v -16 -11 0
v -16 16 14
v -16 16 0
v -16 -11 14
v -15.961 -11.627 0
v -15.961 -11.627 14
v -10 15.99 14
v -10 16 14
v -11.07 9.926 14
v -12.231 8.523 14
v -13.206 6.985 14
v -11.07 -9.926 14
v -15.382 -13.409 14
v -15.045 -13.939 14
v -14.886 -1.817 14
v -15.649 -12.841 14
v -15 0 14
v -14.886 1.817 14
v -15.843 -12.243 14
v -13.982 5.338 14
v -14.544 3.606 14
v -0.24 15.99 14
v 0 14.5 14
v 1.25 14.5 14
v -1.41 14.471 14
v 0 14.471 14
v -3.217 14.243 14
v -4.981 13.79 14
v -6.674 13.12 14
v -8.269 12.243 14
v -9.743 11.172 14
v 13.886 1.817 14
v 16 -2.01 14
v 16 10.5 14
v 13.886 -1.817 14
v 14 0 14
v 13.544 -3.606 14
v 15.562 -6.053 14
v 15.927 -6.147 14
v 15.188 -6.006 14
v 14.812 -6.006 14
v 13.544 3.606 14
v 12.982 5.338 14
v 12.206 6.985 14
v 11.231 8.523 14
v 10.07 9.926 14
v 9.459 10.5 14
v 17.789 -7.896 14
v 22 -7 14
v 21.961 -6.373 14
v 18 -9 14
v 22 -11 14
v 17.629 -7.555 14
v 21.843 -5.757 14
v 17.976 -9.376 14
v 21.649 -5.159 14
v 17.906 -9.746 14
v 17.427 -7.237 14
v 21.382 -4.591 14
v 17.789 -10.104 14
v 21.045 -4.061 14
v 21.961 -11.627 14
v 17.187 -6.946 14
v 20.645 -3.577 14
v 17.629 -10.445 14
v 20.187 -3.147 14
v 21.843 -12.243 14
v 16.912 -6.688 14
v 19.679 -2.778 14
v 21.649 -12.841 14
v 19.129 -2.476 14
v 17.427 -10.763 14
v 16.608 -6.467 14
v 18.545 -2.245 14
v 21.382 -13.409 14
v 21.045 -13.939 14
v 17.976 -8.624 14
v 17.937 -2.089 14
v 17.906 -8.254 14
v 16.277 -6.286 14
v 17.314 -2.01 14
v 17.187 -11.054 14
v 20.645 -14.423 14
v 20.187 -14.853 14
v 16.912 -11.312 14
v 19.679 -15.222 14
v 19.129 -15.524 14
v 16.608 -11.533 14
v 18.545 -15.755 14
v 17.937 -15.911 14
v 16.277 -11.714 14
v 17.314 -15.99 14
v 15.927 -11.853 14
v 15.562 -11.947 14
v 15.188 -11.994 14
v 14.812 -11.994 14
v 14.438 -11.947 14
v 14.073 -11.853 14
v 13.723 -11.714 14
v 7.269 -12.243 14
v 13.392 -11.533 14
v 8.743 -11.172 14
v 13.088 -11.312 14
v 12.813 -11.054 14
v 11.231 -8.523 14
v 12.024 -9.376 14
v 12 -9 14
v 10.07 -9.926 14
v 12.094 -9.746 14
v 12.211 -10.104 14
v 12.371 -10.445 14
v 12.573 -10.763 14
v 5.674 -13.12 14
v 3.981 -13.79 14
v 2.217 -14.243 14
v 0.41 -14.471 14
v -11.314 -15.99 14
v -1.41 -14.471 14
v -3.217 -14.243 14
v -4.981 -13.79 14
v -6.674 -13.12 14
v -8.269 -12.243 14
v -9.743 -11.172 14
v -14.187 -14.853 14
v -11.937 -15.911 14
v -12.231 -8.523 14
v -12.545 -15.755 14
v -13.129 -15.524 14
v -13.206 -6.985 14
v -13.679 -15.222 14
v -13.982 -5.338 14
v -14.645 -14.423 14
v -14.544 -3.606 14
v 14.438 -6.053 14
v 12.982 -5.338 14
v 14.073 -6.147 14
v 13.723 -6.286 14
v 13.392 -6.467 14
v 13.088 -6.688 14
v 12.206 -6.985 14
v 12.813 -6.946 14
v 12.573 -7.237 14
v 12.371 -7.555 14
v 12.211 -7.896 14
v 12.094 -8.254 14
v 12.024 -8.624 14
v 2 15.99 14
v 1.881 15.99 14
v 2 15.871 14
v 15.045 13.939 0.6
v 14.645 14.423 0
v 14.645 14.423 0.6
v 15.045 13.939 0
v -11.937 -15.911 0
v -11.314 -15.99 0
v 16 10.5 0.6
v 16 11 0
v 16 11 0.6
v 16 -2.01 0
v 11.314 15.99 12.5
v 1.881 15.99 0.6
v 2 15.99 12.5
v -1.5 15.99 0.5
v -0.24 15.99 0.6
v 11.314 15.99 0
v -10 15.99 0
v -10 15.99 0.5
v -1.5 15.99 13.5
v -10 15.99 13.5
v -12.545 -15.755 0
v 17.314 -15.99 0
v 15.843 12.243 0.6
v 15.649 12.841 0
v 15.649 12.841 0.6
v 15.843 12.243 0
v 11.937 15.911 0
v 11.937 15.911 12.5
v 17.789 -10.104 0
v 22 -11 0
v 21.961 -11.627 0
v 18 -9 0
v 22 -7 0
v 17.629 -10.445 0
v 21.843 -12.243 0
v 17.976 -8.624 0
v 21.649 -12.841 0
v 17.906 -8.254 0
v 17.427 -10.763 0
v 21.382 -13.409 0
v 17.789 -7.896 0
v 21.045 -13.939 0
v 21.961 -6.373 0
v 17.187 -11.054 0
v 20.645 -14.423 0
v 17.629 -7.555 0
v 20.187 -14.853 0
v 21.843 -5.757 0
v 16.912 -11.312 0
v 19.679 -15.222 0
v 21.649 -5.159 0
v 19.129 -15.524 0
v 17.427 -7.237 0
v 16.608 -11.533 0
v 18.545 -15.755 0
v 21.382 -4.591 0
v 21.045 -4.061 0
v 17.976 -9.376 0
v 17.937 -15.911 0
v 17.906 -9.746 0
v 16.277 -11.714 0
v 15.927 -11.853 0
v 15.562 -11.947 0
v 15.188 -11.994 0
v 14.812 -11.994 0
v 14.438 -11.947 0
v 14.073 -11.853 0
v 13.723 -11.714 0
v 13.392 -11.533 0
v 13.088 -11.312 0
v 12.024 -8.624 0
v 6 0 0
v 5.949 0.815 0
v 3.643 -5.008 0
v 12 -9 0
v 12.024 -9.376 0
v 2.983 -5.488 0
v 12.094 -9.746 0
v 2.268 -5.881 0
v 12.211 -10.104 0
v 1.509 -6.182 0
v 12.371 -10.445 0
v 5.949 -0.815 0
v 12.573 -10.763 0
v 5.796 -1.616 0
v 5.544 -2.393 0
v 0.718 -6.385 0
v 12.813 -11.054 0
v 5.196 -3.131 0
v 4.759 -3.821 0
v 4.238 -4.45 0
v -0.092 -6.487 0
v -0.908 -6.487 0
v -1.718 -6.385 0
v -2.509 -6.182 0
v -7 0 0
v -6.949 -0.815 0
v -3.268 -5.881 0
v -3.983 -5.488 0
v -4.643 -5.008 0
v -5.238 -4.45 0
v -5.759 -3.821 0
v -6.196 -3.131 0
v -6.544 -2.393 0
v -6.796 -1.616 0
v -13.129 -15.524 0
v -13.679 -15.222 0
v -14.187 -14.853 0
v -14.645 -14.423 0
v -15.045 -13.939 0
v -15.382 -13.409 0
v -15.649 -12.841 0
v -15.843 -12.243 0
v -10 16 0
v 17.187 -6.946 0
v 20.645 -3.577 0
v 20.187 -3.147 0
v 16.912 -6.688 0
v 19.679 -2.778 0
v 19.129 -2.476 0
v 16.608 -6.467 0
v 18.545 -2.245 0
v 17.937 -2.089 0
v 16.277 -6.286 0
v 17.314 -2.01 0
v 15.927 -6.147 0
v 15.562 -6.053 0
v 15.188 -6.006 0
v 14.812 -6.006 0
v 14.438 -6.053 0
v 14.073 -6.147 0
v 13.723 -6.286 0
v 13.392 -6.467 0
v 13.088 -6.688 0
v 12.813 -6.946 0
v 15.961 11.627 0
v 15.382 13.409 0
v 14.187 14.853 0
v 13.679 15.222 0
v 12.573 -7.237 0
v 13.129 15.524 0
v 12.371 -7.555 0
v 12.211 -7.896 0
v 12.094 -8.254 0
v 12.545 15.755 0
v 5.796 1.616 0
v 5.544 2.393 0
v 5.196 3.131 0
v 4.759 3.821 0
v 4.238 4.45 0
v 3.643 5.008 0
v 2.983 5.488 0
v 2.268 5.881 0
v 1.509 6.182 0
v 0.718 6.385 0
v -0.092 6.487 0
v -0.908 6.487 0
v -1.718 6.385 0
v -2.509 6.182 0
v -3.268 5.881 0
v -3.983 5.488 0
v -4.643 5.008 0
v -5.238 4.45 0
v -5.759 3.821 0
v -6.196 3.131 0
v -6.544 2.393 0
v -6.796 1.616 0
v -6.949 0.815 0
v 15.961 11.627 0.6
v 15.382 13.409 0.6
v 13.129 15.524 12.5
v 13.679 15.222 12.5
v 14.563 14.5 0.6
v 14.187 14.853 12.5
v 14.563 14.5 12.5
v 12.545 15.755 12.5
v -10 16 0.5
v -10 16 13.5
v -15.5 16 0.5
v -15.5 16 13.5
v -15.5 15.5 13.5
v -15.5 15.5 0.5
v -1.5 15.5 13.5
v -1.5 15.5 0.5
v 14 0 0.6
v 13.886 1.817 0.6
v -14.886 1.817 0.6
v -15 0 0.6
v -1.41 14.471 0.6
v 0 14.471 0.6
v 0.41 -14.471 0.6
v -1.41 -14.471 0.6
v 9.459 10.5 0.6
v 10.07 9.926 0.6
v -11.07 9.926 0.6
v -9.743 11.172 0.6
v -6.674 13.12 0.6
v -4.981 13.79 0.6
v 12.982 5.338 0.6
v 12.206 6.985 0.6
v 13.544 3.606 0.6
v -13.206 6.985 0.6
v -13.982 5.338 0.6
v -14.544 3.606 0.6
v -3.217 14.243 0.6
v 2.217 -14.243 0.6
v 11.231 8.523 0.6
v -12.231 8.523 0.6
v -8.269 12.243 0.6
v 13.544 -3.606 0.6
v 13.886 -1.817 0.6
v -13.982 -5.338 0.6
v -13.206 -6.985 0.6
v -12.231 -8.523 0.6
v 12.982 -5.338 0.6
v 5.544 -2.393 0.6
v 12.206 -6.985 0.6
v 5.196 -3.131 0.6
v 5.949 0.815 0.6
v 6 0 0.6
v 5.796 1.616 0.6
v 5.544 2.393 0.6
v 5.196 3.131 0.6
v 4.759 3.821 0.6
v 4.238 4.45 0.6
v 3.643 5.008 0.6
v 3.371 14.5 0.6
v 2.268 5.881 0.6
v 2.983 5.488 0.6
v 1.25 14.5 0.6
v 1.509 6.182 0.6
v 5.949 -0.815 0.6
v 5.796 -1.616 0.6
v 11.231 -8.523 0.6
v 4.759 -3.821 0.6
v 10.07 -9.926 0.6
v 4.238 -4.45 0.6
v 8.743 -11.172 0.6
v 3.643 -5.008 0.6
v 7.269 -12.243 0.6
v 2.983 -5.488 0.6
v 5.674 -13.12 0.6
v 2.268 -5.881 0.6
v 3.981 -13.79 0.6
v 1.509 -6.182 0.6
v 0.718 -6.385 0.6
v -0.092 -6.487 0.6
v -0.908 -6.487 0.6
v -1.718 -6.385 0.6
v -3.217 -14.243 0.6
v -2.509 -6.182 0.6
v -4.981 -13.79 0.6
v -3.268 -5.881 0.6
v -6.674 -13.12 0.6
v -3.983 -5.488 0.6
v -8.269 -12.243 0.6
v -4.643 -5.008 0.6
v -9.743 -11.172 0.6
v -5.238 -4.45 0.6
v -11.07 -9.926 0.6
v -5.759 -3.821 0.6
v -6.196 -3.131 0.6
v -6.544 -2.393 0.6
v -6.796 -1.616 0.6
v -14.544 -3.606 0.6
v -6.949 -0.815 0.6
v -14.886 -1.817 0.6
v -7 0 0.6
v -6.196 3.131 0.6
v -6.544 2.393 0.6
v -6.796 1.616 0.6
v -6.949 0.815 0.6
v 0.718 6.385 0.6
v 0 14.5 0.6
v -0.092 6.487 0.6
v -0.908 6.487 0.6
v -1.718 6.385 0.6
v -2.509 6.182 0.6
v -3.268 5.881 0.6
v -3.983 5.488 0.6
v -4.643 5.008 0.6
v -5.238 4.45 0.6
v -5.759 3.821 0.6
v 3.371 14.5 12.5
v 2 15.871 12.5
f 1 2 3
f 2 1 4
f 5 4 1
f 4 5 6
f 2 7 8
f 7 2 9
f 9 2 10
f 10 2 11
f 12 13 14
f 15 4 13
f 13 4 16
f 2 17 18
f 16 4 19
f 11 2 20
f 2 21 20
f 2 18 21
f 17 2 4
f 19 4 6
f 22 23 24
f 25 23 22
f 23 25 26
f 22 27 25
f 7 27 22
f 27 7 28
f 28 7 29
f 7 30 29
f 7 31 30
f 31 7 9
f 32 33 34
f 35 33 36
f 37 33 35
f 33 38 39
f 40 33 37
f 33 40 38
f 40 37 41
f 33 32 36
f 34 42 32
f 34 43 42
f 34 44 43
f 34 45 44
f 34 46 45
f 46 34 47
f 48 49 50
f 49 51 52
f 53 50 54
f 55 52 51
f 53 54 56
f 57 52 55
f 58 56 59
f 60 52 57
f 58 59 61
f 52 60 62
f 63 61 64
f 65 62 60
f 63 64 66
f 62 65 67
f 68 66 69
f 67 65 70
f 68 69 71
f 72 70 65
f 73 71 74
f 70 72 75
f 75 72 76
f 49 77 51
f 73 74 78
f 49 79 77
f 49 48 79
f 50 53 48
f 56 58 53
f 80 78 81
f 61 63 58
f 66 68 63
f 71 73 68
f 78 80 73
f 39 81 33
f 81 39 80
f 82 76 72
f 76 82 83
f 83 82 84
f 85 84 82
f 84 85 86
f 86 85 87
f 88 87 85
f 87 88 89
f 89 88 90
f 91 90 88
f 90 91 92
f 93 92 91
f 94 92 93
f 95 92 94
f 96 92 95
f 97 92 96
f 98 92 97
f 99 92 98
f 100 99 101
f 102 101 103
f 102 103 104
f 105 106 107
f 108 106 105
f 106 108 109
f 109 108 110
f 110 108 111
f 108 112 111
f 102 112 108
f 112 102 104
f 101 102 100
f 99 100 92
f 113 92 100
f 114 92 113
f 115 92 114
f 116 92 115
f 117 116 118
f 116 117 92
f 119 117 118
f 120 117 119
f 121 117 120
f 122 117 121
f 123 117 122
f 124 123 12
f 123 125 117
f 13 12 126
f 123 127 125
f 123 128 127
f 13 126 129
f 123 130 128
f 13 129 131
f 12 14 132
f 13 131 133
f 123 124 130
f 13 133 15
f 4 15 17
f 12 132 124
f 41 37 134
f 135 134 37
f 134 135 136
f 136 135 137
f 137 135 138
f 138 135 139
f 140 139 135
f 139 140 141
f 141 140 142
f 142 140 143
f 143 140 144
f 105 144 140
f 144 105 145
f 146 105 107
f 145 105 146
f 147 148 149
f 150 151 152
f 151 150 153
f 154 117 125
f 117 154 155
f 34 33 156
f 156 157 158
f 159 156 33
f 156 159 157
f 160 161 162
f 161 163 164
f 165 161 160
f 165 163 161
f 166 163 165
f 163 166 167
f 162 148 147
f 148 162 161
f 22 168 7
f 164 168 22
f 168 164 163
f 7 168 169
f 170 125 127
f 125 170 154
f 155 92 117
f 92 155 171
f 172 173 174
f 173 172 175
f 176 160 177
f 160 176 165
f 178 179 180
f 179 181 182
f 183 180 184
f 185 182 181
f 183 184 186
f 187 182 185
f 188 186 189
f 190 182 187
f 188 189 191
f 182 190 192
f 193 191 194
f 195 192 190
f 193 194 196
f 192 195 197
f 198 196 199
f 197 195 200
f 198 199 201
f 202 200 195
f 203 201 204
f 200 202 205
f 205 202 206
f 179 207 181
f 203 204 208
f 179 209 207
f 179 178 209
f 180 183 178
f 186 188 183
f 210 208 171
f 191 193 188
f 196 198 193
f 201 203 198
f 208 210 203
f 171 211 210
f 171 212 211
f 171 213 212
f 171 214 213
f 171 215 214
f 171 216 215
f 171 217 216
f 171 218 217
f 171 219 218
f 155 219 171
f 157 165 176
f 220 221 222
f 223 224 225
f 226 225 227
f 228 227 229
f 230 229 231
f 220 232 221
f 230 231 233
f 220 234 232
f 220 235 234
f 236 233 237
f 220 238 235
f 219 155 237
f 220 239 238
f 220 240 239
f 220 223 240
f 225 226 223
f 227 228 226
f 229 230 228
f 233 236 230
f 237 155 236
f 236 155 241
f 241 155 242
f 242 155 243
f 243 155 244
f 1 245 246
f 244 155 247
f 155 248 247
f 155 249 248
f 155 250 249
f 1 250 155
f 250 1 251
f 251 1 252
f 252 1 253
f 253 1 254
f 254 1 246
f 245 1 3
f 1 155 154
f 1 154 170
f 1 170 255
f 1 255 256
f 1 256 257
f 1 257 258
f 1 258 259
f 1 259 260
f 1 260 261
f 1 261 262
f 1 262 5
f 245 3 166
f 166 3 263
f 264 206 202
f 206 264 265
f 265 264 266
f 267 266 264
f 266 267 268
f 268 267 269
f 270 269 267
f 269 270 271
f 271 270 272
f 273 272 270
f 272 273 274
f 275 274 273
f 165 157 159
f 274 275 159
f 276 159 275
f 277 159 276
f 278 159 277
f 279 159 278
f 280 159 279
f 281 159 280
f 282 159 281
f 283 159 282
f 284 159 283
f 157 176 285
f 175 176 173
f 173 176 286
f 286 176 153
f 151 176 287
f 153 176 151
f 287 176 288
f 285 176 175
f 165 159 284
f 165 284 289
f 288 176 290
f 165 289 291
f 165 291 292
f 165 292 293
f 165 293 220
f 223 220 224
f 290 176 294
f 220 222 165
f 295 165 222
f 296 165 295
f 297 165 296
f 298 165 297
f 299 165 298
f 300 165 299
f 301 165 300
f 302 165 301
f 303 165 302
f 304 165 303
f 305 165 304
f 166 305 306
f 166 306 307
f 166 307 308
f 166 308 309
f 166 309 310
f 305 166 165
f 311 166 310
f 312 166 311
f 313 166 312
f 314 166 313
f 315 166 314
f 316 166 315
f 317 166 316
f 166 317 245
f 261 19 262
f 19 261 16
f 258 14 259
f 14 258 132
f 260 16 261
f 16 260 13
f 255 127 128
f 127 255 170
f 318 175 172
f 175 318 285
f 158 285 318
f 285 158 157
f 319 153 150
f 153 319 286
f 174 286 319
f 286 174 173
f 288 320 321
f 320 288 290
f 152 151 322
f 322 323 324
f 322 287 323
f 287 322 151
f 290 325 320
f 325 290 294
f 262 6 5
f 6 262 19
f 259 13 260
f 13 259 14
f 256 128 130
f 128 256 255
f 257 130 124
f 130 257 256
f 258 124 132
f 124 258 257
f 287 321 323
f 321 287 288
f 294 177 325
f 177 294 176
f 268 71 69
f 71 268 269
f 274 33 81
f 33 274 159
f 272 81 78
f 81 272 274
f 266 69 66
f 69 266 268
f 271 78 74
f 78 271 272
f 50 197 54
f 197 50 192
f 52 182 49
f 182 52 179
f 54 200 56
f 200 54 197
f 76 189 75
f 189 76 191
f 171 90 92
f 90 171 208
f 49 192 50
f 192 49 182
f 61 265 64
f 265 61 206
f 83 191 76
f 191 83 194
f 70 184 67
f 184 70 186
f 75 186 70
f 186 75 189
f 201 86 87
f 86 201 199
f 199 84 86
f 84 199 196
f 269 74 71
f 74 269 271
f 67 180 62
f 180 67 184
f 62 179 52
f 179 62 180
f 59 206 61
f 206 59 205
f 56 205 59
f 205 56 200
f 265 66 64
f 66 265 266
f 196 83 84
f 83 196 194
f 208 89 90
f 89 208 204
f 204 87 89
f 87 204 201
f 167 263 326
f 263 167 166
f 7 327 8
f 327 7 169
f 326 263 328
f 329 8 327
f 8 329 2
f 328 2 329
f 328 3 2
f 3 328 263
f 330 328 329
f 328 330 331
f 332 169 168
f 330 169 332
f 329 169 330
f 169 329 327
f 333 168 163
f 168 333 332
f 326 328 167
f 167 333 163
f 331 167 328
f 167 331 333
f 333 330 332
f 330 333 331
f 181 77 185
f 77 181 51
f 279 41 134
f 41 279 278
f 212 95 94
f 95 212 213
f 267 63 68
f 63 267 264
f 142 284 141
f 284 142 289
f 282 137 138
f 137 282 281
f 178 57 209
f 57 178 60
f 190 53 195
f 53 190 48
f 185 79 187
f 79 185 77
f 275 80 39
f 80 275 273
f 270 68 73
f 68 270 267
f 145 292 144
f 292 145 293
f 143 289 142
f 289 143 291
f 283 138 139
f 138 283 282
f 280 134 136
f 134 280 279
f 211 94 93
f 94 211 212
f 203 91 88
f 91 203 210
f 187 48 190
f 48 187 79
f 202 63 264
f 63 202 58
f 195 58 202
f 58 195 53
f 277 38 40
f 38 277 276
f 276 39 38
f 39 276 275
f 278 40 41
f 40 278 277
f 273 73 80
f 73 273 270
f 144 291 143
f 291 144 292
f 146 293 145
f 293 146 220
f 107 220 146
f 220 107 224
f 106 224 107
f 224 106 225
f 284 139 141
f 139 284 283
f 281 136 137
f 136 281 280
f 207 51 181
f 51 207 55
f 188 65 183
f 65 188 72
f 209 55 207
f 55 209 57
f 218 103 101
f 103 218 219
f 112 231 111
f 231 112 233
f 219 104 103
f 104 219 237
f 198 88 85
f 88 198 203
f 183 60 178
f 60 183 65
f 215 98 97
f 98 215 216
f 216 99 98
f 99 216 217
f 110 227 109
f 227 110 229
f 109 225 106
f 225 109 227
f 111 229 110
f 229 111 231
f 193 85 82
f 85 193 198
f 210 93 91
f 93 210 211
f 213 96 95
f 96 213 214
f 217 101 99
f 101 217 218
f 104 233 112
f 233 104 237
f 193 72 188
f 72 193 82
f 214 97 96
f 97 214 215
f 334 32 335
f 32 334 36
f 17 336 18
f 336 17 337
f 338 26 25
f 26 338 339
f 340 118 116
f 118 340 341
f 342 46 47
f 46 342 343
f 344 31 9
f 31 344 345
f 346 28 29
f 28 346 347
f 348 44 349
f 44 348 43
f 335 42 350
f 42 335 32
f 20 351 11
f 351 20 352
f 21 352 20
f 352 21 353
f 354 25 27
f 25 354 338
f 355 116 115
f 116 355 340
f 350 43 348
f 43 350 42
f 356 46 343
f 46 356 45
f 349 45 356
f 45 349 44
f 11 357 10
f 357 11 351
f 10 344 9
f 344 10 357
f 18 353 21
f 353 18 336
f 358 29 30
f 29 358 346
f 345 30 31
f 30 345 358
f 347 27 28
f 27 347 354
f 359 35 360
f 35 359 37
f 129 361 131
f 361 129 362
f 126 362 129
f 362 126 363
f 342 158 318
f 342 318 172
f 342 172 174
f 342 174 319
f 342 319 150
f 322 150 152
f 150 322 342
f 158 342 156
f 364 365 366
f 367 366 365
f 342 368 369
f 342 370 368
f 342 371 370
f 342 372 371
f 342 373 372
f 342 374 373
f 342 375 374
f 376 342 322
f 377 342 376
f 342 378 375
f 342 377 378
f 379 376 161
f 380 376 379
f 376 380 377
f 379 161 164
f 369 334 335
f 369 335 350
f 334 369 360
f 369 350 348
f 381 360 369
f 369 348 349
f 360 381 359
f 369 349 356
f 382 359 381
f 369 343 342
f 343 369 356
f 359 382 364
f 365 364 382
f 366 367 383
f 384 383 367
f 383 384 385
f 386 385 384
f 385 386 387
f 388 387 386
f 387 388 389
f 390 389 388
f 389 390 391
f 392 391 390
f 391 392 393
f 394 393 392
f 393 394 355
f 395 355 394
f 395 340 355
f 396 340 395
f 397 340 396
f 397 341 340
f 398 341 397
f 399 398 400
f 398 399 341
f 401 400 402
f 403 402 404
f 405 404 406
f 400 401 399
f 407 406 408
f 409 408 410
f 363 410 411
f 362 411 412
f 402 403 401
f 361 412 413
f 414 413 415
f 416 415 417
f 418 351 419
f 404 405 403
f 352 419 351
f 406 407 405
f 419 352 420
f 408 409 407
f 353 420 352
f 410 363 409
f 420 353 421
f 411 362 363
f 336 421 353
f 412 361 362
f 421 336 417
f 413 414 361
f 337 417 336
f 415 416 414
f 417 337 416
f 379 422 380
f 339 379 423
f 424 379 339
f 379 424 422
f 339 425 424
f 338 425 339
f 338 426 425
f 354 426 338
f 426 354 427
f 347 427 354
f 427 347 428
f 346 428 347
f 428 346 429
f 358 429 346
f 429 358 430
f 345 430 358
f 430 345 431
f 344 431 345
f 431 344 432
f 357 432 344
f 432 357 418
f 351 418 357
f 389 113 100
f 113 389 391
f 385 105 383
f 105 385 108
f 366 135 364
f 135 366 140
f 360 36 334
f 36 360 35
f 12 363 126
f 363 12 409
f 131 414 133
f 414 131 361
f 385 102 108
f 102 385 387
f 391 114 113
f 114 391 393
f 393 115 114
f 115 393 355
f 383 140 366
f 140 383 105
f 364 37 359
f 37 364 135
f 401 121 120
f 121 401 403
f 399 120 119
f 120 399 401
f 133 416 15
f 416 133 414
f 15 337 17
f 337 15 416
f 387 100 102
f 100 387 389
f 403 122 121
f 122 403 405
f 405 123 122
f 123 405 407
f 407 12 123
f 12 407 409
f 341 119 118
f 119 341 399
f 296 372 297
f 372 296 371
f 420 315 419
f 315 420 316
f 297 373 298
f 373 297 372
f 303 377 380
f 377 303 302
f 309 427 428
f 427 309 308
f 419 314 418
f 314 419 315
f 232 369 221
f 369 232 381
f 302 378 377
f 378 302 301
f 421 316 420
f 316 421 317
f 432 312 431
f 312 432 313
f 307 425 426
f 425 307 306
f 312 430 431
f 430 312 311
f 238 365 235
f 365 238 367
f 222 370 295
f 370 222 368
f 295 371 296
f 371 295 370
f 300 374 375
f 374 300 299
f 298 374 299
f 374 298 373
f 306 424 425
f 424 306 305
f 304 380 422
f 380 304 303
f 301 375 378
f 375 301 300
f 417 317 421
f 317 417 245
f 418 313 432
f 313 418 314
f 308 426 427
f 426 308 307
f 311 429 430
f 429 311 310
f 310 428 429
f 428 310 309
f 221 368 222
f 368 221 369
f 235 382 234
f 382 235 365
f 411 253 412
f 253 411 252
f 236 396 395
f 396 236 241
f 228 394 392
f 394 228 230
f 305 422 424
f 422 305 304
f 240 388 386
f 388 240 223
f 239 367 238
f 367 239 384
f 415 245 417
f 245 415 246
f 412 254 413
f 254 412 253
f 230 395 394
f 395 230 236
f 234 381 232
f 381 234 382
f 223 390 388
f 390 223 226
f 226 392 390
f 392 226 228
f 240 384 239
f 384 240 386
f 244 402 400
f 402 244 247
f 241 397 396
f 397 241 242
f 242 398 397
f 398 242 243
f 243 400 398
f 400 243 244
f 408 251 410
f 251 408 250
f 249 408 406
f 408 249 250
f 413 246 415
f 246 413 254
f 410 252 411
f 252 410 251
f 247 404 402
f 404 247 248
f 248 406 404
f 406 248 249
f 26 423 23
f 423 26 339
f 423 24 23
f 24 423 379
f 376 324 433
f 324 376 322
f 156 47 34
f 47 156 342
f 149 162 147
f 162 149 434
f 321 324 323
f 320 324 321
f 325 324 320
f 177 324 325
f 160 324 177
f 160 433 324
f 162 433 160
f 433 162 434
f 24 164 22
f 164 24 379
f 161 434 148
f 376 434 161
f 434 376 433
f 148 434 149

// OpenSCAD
$fn = 50;


difference() {
	union() {
		hull() {
			translate(v = [-11.0000000000, 11.0000000000, 0]) {
				cylinder(h = 14, r = 5);
			}
			translate(v = [11.0000000000, 11.0000000000, 0]) {
				cylinder(h = 14, r = 5);
			}
			translate(v = [-11.0000000000, -11.0000000000, 0]) {
				cylinder(h = 14, r = 5);
			}
			translate(v = [11.0000000000, -11.0000000000, 0]) {
				cylinder(h = 14, r = 5);
			}
		}
		translate(v = [7.5000000000, -9.0000000000, 0]) {
			hull() {
				translate(v = [-9.5000000000, 2.0000000000, 0]) {
					cylinder(h = 14, r = 5);
				}
				translate(v = [9.5000000000, 2.0000000000, 0]) {
					cylinder(h = 14, r = 5);
				}
				translate(v = [-9.5000000000, -2.0000000000, 0]) {
					cylinder(h = 14, r = 5);
				}
				translate(v = [9.5000000000, -2.0000000000, 0]) {
					cylinder(h = 14, r = 5);
				}
			}
		}
		translate(v = [-16.0000000000, 10.0000000000, 0]) {
			cube(size = [6, 6, 14]);
		}
	}
	union() {
		translate(v = [-15.5000000000, 15.5000000000, 0.5000000000]) {
			cube(size = [14, 0.5000000000, 13.0000000000]);
		}
		translate(v = [15.0000000000, -9.0000000000, -50.0000000000]) {
			cylinder(h = 100, r = 3.0000000000);
		}
		translate(v = [-0.5000000000, 0.0000000000, 0.6000000000]) {
			cylinder(h = 16.4000000000, r = 14.5000000000);
		}
		translate(v = [-0.5000000000, 0.0000000000, -7.0000000000]) {
			cylinder(h = 14, r = 6.5000000000);
		}
		translate(v = [0.0000000000, 10.5000000000, 0.6000000000]) {
			cube(size = [16.0000000000, 4, 16.4000000000]);
		}
		translate(v = [2.0000000000, 10.5000000000, 12.5000000000]) {
			cube(size = [14.0000000000, 7, 1.5000000000]);
		}
		translate(v = [-3.0000000000, 18.7500000000, 0.6000000000]) {
			rotate(a = [0, 0, -45]) {
				cube(size = [10, 1.5000000000, 16.4000000000]);
			}
		}
		translate(v = [2.2500000000, 11.0000000000, 0.6000000000]) {
			cube(size = [7.5000000000, 2, 13.4000000000]);
		}
	}
}
